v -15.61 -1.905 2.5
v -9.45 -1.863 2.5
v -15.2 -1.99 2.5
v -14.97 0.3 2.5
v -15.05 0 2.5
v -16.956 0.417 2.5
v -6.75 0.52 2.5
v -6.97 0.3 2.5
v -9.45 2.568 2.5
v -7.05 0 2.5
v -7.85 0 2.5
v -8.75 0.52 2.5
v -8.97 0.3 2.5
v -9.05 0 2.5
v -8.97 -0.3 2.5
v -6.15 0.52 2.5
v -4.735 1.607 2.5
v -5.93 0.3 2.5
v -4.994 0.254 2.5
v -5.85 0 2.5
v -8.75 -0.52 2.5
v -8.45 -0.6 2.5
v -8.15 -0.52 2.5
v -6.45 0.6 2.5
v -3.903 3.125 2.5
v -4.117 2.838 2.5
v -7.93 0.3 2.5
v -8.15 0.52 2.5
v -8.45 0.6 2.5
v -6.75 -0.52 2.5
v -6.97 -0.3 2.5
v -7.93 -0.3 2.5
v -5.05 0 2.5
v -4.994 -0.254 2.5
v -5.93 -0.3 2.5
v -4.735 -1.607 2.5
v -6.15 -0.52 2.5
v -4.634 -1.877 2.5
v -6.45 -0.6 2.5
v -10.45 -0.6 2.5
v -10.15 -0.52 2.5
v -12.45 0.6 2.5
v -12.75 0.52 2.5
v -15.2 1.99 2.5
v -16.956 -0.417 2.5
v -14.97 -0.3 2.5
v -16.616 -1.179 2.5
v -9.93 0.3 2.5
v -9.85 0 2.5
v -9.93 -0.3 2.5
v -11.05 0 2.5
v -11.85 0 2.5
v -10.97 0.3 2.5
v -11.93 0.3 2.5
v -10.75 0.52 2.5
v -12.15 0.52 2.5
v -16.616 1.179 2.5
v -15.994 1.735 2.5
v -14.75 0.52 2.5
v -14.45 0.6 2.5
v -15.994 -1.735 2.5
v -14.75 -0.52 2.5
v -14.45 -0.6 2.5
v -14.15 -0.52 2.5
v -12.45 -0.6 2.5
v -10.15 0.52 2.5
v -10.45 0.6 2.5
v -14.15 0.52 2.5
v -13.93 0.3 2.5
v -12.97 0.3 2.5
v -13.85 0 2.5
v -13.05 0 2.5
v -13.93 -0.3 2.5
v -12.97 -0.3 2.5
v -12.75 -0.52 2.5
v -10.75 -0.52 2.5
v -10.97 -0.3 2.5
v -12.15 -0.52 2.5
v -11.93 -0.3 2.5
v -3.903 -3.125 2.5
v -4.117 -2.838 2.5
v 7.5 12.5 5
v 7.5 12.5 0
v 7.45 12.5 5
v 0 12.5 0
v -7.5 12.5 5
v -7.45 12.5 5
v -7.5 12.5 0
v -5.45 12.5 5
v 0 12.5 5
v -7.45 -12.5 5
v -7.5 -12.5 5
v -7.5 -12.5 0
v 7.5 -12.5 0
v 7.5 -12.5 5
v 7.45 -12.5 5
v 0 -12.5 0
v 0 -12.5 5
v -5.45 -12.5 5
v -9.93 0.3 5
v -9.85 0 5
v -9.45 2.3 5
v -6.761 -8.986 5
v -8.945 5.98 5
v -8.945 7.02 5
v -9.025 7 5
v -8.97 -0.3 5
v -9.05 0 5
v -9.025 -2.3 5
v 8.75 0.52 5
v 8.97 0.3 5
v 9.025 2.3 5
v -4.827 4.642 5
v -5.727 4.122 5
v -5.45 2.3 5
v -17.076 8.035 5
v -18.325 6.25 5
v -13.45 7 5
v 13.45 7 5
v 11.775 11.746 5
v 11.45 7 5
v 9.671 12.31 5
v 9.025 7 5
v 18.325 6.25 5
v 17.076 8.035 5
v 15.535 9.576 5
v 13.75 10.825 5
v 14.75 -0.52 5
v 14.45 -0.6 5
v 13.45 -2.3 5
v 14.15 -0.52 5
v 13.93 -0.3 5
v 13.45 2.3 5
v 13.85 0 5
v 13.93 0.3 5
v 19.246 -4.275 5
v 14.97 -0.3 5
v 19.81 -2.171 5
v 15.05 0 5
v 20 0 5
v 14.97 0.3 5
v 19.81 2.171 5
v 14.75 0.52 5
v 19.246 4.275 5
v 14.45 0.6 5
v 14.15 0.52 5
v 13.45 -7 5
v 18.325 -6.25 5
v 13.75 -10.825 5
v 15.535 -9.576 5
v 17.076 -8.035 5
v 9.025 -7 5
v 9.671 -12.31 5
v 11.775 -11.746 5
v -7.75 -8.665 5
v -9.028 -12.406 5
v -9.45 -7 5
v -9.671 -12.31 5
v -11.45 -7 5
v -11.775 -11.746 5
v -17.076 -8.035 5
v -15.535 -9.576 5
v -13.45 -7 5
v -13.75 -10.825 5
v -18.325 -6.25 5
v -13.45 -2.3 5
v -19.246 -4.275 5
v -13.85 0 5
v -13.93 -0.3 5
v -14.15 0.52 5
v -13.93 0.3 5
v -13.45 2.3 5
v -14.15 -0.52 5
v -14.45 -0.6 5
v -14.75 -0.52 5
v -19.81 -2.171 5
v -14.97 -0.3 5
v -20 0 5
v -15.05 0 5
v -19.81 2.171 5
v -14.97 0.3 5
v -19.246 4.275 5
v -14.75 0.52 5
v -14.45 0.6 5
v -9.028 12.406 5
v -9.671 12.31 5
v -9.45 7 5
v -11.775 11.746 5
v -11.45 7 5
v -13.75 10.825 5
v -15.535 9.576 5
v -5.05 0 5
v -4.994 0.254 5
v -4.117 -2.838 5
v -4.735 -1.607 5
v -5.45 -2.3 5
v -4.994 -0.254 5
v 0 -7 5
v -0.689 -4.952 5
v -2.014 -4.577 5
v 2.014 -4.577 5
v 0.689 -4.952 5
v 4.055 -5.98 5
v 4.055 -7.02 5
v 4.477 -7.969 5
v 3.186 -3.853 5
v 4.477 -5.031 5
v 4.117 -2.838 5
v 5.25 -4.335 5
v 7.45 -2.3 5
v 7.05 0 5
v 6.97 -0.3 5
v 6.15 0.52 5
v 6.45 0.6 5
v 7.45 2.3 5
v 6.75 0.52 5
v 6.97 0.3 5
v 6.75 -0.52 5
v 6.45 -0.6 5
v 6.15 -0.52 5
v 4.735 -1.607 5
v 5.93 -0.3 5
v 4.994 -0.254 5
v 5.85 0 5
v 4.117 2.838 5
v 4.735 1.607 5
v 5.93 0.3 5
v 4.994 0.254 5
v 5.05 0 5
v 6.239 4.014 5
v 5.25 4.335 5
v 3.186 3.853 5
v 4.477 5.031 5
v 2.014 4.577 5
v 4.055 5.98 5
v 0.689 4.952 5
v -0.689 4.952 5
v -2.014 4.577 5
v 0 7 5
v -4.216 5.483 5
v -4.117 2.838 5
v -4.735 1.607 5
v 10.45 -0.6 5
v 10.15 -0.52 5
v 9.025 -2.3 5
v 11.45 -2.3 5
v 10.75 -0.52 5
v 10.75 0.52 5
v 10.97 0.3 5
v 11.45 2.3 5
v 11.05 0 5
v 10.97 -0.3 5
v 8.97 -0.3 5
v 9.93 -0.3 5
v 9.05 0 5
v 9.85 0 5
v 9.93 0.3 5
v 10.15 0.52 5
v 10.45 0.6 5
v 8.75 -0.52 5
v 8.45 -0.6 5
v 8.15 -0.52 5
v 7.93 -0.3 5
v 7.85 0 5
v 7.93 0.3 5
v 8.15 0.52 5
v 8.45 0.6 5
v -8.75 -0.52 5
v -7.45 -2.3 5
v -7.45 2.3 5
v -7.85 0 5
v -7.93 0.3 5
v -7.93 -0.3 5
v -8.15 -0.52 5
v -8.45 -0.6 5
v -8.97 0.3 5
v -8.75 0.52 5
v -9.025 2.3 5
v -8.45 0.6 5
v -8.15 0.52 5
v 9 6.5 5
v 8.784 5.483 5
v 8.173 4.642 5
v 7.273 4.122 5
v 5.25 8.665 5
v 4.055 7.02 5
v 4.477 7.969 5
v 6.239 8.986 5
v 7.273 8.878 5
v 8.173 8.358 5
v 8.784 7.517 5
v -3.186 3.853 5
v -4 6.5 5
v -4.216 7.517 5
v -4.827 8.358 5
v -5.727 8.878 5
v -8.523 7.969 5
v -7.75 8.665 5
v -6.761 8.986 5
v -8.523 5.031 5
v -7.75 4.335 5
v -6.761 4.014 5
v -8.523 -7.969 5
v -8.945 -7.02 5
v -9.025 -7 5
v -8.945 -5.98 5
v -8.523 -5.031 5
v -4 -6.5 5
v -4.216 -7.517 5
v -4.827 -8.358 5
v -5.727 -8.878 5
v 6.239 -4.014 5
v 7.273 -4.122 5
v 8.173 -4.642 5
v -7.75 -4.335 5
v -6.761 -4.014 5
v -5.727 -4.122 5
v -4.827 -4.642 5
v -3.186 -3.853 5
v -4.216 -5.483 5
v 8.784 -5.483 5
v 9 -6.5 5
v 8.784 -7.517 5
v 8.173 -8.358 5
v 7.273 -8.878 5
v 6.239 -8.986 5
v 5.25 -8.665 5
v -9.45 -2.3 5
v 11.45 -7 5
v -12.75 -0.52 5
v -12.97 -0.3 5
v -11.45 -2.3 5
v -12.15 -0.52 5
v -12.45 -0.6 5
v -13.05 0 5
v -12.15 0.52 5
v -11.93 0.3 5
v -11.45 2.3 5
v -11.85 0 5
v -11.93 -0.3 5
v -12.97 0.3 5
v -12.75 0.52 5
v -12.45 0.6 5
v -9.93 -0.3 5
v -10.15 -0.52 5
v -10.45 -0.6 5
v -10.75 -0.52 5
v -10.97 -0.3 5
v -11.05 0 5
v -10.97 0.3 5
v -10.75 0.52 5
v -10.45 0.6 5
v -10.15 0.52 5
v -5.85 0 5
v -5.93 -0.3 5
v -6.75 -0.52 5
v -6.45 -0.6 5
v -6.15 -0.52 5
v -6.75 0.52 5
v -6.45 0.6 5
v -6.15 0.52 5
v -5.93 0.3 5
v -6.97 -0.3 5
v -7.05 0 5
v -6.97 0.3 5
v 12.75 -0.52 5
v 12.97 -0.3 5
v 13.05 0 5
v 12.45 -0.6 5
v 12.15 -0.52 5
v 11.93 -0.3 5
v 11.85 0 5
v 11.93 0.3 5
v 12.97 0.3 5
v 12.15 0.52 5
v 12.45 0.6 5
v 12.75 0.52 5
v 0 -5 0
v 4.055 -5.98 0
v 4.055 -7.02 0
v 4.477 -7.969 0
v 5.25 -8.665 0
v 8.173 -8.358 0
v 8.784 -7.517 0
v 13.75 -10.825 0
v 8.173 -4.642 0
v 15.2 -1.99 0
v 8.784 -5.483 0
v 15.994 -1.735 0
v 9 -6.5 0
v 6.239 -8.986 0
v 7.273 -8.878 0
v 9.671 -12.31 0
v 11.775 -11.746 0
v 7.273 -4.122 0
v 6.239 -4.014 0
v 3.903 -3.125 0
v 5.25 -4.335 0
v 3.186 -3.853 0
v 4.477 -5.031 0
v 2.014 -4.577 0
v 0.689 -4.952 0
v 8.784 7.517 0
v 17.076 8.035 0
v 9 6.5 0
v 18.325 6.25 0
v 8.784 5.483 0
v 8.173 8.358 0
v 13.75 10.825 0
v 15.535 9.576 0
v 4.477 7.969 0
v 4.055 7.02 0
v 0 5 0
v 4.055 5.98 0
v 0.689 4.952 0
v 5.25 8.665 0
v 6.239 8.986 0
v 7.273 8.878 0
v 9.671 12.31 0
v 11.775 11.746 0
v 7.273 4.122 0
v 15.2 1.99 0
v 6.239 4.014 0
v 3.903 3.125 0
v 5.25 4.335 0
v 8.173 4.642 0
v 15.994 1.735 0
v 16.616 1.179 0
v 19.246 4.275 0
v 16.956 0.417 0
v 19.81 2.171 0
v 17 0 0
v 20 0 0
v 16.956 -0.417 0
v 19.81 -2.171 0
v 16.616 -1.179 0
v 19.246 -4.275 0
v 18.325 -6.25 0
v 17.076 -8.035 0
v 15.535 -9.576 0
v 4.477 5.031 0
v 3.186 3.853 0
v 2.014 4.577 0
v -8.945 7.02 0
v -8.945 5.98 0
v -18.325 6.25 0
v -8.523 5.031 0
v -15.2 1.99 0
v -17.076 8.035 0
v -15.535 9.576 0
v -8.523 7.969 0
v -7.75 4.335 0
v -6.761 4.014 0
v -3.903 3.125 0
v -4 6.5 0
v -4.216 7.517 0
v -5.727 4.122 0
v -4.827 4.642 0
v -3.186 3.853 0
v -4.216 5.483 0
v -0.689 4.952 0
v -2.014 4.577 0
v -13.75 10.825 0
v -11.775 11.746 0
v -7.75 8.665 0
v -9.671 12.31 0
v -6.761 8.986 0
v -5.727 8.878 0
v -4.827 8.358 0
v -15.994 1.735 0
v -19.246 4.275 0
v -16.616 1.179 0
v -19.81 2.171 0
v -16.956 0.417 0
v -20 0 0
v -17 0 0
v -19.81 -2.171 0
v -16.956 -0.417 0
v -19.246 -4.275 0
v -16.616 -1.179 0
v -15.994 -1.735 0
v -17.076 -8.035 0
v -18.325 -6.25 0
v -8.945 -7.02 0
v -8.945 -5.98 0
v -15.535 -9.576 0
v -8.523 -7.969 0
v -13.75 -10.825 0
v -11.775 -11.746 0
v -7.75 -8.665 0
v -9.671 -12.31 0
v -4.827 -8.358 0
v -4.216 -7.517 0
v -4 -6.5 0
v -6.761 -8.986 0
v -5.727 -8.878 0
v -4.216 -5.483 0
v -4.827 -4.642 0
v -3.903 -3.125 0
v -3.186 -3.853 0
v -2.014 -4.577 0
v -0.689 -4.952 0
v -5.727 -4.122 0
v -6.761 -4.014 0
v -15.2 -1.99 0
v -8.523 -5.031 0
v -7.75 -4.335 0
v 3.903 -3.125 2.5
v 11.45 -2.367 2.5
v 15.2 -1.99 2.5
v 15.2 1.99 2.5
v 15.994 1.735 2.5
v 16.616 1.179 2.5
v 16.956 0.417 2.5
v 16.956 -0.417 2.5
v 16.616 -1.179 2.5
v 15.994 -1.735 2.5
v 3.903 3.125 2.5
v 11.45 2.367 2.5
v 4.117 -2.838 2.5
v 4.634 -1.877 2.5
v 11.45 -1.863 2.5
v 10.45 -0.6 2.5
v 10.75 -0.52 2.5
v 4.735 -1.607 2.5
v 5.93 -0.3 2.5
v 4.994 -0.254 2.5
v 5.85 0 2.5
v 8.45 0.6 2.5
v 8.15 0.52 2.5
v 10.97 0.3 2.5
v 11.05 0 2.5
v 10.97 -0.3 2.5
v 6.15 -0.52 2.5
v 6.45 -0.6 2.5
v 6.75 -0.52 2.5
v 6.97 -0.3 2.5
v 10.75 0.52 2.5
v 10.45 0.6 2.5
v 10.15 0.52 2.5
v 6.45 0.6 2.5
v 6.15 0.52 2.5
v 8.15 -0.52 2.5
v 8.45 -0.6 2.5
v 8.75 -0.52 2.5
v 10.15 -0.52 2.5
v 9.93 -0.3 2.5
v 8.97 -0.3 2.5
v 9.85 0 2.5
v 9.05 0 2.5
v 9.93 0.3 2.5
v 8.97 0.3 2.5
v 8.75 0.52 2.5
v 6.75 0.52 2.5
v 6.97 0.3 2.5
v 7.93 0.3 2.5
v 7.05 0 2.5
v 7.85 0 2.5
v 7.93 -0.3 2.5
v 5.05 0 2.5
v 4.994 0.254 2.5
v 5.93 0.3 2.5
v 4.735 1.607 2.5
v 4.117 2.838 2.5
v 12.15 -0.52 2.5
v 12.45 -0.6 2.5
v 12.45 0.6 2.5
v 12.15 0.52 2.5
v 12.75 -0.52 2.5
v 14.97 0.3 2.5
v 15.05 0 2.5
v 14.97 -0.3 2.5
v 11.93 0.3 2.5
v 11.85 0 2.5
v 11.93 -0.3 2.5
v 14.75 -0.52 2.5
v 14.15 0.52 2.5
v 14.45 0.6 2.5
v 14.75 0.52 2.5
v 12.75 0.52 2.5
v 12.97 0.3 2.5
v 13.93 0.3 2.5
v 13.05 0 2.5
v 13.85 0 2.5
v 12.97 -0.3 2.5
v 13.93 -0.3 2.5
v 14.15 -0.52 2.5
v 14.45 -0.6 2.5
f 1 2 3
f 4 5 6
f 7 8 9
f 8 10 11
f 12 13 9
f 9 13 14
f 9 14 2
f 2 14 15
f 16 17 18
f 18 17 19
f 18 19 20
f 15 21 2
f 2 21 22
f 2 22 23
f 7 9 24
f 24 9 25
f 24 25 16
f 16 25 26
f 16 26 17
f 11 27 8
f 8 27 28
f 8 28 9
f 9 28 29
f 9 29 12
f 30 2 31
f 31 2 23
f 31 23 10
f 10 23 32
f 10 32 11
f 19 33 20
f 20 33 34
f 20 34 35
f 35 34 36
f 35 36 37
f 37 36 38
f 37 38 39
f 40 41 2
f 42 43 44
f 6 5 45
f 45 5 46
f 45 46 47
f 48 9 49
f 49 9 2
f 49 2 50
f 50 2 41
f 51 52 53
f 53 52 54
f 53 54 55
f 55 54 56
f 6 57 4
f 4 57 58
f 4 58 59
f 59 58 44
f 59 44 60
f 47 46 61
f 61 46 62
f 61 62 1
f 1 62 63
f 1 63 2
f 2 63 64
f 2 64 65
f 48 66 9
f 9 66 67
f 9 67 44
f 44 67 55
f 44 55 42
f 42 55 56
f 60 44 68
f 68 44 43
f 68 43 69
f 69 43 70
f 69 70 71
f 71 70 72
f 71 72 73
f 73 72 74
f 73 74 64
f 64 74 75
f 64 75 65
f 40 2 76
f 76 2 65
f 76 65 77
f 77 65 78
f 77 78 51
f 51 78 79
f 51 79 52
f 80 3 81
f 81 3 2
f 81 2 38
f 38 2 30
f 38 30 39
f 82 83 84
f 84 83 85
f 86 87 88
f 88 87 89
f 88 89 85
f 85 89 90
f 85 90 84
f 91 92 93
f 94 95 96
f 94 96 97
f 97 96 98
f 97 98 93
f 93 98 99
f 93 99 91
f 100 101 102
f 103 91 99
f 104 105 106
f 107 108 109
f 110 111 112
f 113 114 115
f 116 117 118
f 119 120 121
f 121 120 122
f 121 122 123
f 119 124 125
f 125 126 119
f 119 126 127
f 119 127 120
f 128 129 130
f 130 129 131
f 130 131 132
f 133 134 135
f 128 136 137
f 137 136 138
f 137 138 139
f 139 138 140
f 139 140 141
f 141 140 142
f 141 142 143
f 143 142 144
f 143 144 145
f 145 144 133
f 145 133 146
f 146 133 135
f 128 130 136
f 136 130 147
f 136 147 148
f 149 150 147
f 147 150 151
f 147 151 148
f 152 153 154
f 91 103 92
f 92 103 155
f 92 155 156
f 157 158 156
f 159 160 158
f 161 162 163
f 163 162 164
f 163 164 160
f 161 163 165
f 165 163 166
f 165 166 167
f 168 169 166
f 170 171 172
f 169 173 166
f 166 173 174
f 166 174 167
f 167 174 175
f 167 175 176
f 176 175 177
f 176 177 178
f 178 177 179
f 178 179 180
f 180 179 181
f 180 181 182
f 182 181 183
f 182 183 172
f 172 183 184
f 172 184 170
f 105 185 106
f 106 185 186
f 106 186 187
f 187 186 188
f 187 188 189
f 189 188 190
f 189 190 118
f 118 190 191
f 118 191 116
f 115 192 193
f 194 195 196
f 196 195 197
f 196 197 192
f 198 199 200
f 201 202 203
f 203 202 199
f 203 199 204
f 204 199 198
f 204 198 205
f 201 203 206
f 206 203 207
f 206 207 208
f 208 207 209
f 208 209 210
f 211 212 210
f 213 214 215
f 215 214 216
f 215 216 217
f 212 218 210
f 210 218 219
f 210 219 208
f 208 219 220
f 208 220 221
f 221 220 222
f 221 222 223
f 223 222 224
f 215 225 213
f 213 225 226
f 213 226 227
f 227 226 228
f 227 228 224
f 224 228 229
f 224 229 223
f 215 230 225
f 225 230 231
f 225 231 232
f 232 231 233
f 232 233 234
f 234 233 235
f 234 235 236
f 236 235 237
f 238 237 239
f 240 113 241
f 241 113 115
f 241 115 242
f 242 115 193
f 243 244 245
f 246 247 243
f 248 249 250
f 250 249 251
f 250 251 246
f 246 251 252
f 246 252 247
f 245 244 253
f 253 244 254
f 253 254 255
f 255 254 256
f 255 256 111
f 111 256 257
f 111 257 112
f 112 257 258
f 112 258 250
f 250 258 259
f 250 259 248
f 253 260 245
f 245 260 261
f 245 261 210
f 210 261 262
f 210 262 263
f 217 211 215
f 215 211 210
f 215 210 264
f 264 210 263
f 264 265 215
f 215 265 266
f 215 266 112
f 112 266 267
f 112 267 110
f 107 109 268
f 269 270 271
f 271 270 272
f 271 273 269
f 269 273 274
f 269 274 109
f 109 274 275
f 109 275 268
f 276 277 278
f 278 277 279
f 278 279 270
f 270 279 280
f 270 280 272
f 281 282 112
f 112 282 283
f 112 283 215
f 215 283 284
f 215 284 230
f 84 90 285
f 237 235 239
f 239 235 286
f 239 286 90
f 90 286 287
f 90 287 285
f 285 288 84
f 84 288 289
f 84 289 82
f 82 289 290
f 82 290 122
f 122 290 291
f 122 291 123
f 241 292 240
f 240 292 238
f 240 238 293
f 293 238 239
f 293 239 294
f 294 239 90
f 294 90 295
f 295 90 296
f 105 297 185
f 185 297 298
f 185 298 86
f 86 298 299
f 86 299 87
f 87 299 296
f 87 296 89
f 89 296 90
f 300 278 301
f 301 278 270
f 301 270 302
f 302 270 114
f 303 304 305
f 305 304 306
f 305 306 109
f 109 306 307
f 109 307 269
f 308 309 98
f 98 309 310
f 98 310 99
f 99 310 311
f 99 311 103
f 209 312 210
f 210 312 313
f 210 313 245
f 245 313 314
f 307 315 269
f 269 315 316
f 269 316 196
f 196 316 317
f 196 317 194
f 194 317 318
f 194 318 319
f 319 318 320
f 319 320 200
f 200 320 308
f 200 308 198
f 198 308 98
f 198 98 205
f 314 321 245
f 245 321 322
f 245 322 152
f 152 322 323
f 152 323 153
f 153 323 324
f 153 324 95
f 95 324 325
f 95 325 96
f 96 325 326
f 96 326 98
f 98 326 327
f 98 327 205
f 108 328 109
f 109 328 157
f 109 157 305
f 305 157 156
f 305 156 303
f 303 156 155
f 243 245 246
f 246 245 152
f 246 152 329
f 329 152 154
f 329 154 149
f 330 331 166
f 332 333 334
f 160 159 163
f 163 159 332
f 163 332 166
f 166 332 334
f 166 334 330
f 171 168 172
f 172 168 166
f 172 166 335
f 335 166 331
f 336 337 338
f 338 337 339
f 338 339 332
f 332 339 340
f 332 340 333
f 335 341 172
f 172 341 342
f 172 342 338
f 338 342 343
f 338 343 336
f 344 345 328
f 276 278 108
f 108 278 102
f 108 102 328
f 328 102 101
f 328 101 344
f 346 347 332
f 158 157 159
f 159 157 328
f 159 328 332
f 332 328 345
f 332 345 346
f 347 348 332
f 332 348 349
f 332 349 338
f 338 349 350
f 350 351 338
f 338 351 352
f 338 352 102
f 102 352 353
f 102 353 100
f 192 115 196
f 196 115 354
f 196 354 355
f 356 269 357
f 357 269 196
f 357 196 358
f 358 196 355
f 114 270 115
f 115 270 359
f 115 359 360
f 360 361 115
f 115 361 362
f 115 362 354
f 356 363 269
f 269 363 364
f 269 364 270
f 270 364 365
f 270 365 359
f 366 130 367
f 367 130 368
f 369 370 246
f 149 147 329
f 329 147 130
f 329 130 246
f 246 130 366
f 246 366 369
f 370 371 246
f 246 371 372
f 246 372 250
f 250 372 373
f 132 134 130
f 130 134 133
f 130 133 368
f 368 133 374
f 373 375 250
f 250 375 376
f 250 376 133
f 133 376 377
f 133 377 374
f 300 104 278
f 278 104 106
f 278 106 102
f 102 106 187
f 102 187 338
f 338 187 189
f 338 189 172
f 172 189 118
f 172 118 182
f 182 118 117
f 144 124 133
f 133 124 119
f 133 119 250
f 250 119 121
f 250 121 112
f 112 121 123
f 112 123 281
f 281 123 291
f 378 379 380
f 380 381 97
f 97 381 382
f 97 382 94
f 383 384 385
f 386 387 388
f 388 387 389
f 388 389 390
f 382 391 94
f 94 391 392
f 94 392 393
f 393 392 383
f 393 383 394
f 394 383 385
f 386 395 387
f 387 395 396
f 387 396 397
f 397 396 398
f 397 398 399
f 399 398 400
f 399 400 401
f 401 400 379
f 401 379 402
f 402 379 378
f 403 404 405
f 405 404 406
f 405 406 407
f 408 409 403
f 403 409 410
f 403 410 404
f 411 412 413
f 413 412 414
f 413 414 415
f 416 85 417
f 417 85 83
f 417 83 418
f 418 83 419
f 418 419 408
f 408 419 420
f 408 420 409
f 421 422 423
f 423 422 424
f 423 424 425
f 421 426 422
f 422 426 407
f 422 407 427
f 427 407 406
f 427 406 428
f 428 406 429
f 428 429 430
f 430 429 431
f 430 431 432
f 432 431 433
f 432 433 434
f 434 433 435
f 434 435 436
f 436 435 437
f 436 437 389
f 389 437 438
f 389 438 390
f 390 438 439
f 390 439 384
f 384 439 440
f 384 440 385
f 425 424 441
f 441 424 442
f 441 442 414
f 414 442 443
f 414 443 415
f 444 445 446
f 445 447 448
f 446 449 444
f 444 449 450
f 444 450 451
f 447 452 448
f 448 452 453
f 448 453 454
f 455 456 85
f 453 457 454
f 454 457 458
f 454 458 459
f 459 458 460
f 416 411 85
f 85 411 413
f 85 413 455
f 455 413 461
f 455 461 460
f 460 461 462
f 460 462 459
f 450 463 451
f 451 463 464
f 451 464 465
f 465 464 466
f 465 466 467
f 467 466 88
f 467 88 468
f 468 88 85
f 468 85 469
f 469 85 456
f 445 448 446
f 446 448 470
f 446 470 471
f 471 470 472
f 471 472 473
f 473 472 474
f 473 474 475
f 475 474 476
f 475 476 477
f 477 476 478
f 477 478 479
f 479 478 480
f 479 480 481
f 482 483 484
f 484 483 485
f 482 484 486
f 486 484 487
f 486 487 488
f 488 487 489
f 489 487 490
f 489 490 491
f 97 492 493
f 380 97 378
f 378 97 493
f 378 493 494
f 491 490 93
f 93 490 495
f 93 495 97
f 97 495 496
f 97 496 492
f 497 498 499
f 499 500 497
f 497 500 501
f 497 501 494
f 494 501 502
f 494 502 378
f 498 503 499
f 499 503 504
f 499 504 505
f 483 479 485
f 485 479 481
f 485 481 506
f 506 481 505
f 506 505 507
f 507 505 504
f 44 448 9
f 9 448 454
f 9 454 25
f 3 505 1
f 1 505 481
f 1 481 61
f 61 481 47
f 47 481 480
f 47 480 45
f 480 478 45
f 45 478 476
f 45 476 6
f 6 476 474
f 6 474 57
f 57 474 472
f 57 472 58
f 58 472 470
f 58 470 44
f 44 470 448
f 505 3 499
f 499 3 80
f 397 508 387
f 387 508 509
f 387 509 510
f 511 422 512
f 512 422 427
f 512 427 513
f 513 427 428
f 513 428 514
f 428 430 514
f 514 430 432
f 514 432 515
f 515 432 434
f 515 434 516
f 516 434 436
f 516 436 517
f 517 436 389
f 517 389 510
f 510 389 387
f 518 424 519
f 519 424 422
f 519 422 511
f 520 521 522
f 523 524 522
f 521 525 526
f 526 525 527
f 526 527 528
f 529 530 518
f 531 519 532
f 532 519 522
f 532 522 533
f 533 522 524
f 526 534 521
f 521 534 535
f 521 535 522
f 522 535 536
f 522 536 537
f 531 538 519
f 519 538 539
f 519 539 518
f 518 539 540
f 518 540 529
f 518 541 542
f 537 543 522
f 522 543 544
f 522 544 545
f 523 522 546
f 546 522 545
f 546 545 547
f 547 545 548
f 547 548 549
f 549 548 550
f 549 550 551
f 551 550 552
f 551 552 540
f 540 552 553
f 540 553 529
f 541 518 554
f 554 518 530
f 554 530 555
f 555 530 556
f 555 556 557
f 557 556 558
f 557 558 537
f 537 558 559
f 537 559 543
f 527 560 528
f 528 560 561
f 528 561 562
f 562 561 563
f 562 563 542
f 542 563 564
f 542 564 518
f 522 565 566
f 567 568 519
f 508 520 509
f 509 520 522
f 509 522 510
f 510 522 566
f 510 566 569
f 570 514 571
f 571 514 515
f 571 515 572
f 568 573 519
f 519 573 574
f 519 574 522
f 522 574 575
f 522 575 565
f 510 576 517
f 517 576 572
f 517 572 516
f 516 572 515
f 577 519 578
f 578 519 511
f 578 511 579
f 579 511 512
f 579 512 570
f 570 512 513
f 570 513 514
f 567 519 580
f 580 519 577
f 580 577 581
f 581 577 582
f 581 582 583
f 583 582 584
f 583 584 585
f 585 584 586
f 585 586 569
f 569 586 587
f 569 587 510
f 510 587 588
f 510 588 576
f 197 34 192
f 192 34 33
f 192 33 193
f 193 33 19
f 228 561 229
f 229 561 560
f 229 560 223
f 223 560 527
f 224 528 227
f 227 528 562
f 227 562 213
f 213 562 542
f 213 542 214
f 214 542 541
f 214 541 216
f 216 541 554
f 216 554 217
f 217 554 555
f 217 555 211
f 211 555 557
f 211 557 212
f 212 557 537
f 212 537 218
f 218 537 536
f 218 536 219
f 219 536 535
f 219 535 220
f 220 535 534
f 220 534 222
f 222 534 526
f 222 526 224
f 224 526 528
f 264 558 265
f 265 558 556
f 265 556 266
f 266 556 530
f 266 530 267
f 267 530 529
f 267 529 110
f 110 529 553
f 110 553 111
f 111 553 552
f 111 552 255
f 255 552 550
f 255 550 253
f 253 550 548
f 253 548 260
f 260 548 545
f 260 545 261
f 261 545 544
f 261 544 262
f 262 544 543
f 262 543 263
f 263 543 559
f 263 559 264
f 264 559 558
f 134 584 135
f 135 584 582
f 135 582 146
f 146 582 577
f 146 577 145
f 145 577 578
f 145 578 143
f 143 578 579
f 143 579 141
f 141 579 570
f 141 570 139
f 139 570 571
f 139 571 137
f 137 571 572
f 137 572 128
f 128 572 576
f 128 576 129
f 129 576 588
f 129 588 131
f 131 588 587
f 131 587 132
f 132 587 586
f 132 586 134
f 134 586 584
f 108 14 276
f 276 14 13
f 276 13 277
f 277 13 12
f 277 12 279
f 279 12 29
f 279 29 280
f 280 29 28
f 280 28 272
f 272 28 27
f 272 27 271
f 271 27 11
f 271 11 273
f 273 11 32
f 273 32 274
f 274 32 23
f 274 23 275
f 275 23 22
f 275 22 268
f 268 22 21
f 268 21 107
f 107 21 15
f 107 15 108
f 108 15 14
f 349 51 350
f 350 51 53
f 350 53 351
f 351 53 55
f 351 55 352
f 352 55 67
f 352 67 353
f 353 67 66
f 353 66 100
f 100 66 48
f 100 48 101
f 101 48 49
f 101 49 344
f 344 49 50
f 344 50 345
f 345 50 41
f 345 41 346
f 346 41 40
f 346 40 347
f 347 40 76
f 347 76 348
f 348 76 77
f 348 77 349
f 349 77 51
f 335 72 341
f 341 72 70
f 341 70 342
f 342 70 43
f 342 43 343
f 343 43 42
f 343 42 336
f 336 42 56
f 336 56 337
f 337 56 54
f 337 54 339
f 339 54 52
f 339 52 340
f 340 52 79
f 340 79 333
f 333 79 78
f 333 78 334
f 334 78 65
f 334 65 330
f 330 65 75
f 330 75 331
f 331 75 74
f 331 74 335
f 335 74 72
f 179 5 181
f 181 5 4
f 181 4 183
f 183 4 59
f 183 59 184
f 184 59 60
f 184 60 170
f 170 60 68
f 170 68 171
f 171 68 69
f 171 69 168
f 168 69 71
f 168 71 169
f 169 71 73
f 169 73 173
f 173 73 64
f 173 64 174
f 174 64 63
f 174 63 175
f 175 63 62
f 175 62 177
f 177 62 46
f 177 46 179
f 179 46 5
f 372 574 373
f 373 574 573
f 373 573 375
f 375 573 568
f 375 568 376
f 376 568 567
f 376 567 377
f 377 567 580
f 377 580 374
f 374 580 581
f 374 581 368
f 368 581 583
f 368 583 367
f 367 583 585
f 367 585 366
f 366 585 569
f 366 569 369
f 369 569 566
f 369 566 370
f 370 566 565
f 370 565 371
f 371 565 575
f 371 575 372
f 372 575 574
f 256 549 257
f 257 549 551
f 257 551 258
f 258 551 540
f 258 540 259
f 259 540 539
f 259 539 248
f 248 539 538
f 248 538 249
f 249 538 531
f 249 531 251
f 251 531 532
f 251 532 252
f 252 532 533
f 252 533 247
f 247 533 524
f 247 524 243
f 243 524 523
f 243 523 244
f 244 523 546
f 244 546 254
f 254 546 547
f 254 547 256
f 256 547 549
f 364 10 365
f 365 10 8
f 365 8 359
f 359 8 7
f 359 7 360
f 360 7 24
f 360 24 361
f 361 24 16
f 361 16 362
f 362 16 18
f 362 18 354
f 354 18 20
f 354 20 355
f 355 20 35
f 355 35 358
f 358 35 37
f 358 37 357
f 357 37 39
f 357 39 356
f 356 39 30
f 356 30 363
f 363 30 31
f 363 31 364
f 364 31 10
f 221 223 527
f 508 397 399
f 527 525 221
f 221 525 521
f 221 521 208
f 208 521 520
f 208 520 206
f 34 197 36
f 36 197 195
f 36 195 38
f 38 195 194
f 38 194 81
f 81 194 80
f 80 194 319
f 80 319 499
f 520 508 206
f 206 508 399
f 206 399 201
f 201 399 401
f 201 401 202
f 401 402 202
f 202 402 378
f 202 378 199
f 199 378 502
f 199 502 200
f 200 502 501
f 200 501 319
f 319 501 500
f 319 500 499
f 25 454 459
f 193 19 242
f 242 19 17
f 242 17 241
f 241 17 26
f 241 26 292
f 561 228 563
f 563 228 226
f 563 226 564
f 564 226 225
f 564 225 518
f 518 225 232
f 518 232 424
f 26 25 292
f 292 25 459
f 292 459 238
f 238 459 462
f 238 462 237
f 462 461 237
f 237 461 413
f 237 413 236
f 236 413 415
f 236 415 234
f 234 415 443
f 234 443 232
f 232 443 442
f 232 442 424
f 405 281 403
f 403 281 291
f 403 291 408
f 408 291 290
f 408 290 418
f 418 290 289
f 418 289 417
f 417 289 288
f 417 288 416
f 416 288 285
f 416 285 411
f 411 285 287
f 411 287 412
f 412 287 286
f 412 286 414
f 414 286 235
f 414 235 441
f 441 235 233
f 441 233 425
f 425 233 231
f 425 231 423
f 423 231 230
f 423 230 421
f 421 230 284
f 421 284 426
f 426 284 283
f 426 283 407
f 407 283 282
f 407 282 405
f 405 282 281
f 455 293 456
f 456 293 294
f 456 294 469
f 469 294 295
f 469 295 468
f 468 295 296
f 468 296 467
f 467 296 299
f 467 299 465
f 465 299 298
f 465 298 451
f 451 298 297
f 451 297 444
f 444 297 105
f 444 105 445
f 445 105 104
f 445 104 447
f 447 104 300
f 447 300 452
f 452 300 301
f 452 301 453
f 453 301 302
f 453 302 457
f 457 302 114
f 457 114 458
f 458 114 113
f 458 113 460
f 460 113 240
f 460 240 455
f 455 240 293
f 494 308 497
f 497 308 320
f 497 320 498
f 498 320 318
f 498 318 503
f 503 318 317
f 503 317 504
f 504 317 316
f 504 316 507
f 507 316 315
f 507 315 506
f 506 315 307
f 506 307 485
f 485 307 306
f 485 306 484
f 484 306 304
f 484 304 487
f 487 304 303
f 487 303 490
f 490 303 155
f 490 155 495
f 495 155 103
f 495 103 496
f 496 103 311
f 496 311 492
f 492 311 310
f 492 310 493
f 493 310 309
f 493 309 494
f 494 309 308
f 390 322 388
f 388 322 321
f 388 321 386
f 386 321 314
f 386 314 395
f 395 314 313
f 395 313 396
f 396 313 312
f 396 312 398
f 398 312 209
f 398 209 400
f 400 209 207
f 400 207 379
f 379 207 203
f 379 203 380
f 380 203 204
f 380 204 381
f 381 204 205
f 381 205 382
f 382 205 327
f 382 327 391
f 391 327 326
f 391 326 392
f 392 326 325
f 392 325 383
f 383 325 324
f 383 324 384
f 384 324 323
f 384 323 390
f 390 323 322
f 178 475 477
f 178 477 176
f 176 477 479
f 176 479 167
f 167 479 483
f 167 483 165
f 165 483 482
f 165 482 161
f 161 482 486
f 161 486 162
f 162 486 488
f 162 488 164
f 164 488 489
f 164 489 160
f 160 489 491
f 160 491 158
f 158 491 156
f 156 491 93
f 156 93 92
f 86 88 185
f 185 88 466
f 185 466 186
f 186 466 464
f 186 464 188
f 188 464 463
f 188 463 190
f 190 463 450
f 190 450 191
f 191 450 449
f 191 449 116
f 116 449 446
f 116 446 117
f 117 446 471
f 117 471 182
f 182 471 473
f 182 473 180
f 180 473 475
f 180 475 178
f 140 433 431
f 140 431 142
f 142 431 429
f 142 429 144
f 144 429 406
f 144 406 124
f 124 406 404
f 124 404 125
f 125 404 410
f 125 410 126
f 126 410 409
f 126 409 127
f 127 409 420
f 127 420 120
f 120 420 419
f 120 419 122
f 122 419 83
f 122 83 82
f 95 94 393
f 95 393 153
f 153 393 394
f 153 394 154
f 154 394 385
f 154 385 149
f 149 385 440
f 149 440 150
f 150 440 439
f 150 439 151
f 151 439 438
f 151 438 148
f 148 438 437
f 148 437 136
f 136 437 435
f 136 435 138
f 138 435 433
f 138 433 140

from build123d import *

# Parameters (mm, degrees)
SKETCH1_W              = 40
SKETCH1_H              = 25
BOSS_EXTRUDE2_DEPTH    = 5
CUT_EXTRUDE1_DEPTH     = 2.5
CUT_EXTRUDE2_START     = -2.5
CUT_EXTRUDE2_OUTLINE_R = 0.6
CUT_EXTRUDE2_DEPTH     = 2.5
SKETCH7_R              = 5
CUT_EXTRUDE3_DEPTH     = 25.109126902
SKETCH8_R              = 2.5
CUT_EXTRUDE4_DEPTH     = 25.109126902
FILLET1_R              = 12.5


# Read off the part's stored shape, not the designer's step: Cut-Extrude2
with BuildPart() as part:
    # Sketch1 → Boss-Extrude2 (new body)
    with BuildSketch(Plane.XY):
        Rectangle(SKETCH1_W, SKETCH1_H)
    extrude(amount=BOSS_EXTRUDE2_DEPTH)

    # Sketch4 → Cut-Extrude1 (cut)
    with BuildSketch(Plane(origin=(0, 0, 0), x_dir=(-1, 0, 0), z_dir=(0, 0, -1))):
        with BuildLine():
            Line((-0.35, 3.48245603), (-15.2, 1.989974874))
            ThreePointArc((-15.2, 1.989974874), (-17, 0), (-15.2, -1.989974874))
            Line((-15.2, -1.989974874), (-0.35, -3.48245603))
            ThreePointArc((-0.35, -3.48245603), (0, -3.5), (0.35, -3.48245603))
            Line((0.35, -3.48245603), (15.2, -1.989974874))
            ThreePointArc((15.2, -1.989974874), (17, 0), (15.2, 1.989974874))
            Line((15.2, 1.989974874), (0.35, 3.48245603))
            ThreePointArc((0.35, 3.48245603), (0, 3.5), (-0.35, 3.48245603))
        make_face()
    extrude(amount=-CUT_EXTRUDE1_DEPTH, mode=Mode.SUBTRACT)

    # Cut-Extrude2 outline → Cut-Extrude2 (cut)
    with BuildSketch(Plane(origin=(0, 0, 2.5), x_dir=(-1, 0, 0), z_dir=(0, 0, -1)).offset(CUT_EXTRUDE2_START)):
        with BuildLine():
            ThreePointArc((3.982303371, 0.375845531), (4, 0), (3.982303371, -0.375845531))
            ThreePointArc((3.982303371, -0.375845531), (5.05, 0), (3.982303371, 0.375845531))
        make_face()
        with Locations((-4.45, 0)):
            Circle(CUT_EXTRUDE2_OUTLINE_R)
        with Locations((-6.45, 0)):
            Circle(CUT_EXTRUDE2_OUTLINE_R)
        with Locations((-8.45, 0)):
            Circle(CUT_EXTRUDE2_OUTLINE_R)
        with Locations((-14.45, 0)):
            Circle(CUT_EXTRUDE2_OUTLINE_R)
        with Locations((8.45, 0)):
            Circle(CUT_EXTRUDE2_OUTLINE_R)
        with Locations((10.45, 0)):
            Circle(CUT_EXTRUDE2_OUTLINE_R)
        with Locations((12.45, 0)):
            Circle(CUT_EXTRUDE2_OUTLINE_R)
        with Locations((14.45, 0)):
            Circle(CUT_EXTRUDE2_OUTLINE_R)
        with Locations((-12.45, 0)):
            Circle(CUT_EXTRUDE2_OUTLINE_R)
        with Locations((-10.45, 0)):
            Circle(CUT_EXTRUDE2_OUTLINE_R)
        with Locations((6.45, 0)):
            Circle(CUT_EXTRUDE2_OUTLINE_R)
    extrude(amount=CUT_EXTRUDE2_DEPTH, mode=Mode.SUBTRACT)

    # Sketch7 → Cut-Extrude3 (cut, through all)
    with BuildSketch(Plane(origin=(0, 0, 0), x_dir=(-1, 0, 0), z_dir=(0, 0, -1))):
        Circle(SKETCH7_R)
    extrude(amount=-CUT_EXTRUDE3_DEPTH, mode=Mode.SUBTRACT)

    # Sketch8 → Cut-Extrude4 (cut, through all)
    with BuildSketch(Plane.XY.offset(5)):
        with Locations((6.5, 6.5)):
            Circle(SKETCH8_R)
        with Locations((-6.5, 6.5)):
            Circle(SKETCH8_R)
        with Locations((-6.5, -6.5)):
            Circle(SKETCH8_R)
        with Locations((6.5, -6.5)):
            Circle(SKETCH8_R)
    extrude(amount=-CUT_EXTRUDE4_DEPTH, mode=Mode.SUBTRACT)

    # Fillet1
    fillet1_edges = [part.edges().sort_by_distance(p)[0] for p in [
        (-20, 12.5, 2.5),
        (-20, -12.5, 2.5),
        (20, -12.5, 2.5),
        (20, 12.5, 2.5),
    ]]
    fillet(fillet1_edges, radius=FILLET1_R - 0.0001)  # a hair under: the kernel refuses the full size


solid = part.part
